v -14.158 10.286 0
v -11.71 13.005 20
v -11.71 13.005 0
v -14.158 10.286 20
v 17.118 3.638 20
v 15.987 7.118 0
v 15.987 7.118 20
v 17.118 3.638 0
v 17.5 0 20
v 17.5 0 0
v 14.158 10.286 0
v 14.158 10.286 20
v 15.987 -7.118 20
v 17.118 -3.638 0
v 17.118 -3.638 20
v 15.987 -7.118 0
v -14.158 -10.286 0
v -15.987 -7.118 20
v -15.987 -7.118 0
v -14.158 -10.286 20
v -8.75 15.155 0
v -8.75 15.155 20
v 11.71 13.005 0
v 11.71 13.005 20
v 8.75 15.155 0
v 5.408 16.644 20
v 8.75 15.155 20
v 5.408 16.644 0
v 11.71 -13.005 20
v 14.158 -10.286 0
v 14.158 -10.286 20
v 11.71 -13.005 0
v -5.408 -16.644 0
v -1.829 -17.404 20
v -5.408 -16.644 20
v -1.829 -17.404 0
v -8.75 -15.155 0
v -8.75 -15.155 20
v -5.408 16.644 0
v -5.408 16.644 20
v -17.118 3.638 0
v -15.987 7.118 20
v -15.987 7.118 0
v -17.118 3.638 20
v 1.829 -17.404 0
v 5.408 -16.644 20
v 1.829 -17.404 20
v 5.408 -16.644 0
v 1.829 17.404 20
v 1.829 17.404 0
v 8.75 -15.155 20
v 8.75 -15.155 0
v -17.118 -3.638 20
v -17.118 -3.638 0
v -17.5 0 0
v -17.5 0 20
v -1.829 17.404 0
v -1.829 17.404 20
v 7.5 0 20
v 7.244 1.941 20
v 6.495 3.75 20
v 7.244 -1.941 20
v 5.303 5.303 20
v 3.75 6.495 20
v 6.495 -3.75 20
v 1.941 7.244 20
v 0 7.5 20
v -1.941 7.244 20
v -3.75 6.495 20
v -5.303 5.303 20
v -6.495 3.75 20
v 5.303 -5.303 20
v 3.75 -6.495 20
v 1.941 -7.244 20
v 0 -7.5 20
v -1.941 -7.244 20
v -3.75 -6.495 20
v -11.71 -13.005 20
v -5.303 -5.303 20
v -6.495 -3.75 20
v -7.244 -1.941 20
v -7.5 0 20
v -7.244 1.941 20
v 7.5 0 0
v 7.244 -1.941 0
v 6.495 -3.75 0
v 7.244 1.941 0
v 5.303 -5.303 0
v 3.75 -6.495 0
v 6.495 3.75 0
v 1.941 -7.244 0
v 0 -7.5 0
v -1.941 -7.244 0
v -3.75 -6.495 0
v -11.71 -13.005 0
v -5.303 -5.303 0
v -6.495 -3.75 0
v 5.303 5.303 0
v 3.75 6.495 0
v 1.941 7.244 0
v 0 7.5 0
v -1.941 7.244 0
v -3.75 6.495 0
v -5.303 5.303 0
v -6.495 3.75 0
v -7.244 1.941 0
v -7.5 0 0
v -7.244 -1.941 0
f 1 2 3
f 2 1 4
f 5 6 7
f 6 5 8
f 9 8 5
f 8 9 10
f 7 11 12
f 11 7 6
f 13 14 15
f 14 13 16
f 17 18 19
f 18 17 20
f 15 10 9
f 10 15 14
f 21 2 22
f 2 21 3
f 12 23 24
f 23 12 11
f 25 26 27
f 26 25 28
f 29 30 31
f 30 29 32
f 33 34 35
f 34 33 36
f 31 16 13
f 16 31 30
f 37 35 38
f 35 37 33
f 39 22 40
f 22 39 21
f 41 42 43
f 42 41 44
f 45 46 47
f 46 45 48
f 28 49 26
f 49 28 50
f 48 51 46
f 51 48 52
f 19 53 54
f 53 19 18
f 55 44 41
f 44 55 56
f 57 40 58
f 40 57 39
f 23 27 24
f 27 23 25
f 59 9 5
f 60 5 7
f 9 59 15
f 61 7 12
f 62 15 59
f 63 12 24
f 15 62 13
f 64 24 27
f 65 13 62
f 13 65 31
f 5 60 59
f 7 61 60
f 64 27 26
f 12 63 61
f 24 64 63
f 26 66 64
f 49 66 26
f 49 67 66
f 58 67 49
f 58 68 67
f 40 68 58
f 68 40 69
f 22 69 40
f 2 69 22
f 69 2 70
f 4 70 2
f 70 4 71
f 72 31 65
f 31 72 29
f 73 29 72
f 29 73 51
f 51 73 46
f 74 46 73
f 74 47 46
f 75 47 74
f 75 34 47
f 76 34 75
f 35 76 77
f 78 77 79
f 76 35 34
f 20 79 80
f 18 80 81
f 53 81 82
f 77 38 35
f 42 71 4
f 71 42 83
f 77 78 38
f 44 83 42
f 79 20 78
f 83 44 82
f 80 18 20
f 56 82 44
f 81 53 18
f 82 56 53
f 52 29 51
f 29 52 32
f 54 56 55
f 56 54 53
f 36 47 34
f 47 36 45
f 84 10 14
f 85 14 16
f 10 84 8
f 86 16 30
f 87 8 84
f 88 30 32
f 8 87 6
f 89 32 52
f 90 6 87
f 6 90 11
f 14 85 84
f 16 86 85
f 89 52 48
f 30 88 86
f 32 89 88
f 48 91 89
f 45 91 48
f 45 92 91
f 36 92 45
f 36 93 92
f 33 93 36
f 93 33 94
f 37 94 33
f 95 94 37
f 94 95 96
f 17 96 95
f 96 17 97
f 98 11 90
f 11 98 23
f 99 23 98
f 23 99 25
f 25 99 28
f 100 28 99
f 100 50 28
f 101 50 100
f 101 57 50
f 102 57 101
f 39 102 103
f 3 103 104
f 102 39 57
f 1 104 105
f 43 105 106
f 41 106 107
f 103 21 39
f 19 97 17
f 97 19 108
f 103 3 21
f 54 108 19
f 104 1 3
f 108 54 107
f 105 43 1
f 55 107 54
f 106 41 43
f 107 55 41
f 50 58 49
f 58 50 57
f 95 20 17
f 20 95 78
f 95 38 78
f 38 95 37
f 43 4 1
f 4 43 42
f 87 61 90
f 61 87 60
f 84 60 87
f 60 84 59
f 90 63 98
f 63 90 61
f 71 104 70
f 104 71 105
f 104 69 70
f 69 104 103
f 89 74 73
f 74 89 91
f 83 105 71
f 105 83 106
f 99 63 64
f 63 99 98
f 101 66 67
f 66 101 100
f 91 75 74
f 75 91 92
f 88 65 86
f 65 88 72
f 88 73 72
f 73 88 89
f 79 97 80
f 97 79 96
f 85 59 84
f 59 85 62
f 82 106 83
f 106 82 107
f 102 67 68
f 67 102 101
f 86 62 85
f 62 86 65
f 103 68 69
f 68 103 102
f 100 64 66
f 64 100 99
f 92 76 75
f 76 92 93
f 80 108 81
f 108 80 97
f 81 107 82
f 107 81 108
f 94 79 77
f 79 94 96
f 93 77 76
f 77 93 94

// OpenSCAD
// Parameters
outer_diameter = 35;  // Uniform outer diameter to reduce tapering
height = 20;  // Height of the cylinder
inner_diameter = 15;  // Diameter of the hollow section

// Module to create the cylindrical hollow object
module cylindrical_hollow_cylinder() {
    difference() {
        // Create a cylindrical shape
        cylinder(h=height, d=outer_diameter, center=false);
        
        // Create the inner hollow section
        translate([0, 0, -1]) // Slightly lower to ensure proper subtraction
        cylinder(h=height+2, d=inner_diameter, center=false);
    }
}

// Call the module to render the object
cylindrical_hollow_cylinder();
